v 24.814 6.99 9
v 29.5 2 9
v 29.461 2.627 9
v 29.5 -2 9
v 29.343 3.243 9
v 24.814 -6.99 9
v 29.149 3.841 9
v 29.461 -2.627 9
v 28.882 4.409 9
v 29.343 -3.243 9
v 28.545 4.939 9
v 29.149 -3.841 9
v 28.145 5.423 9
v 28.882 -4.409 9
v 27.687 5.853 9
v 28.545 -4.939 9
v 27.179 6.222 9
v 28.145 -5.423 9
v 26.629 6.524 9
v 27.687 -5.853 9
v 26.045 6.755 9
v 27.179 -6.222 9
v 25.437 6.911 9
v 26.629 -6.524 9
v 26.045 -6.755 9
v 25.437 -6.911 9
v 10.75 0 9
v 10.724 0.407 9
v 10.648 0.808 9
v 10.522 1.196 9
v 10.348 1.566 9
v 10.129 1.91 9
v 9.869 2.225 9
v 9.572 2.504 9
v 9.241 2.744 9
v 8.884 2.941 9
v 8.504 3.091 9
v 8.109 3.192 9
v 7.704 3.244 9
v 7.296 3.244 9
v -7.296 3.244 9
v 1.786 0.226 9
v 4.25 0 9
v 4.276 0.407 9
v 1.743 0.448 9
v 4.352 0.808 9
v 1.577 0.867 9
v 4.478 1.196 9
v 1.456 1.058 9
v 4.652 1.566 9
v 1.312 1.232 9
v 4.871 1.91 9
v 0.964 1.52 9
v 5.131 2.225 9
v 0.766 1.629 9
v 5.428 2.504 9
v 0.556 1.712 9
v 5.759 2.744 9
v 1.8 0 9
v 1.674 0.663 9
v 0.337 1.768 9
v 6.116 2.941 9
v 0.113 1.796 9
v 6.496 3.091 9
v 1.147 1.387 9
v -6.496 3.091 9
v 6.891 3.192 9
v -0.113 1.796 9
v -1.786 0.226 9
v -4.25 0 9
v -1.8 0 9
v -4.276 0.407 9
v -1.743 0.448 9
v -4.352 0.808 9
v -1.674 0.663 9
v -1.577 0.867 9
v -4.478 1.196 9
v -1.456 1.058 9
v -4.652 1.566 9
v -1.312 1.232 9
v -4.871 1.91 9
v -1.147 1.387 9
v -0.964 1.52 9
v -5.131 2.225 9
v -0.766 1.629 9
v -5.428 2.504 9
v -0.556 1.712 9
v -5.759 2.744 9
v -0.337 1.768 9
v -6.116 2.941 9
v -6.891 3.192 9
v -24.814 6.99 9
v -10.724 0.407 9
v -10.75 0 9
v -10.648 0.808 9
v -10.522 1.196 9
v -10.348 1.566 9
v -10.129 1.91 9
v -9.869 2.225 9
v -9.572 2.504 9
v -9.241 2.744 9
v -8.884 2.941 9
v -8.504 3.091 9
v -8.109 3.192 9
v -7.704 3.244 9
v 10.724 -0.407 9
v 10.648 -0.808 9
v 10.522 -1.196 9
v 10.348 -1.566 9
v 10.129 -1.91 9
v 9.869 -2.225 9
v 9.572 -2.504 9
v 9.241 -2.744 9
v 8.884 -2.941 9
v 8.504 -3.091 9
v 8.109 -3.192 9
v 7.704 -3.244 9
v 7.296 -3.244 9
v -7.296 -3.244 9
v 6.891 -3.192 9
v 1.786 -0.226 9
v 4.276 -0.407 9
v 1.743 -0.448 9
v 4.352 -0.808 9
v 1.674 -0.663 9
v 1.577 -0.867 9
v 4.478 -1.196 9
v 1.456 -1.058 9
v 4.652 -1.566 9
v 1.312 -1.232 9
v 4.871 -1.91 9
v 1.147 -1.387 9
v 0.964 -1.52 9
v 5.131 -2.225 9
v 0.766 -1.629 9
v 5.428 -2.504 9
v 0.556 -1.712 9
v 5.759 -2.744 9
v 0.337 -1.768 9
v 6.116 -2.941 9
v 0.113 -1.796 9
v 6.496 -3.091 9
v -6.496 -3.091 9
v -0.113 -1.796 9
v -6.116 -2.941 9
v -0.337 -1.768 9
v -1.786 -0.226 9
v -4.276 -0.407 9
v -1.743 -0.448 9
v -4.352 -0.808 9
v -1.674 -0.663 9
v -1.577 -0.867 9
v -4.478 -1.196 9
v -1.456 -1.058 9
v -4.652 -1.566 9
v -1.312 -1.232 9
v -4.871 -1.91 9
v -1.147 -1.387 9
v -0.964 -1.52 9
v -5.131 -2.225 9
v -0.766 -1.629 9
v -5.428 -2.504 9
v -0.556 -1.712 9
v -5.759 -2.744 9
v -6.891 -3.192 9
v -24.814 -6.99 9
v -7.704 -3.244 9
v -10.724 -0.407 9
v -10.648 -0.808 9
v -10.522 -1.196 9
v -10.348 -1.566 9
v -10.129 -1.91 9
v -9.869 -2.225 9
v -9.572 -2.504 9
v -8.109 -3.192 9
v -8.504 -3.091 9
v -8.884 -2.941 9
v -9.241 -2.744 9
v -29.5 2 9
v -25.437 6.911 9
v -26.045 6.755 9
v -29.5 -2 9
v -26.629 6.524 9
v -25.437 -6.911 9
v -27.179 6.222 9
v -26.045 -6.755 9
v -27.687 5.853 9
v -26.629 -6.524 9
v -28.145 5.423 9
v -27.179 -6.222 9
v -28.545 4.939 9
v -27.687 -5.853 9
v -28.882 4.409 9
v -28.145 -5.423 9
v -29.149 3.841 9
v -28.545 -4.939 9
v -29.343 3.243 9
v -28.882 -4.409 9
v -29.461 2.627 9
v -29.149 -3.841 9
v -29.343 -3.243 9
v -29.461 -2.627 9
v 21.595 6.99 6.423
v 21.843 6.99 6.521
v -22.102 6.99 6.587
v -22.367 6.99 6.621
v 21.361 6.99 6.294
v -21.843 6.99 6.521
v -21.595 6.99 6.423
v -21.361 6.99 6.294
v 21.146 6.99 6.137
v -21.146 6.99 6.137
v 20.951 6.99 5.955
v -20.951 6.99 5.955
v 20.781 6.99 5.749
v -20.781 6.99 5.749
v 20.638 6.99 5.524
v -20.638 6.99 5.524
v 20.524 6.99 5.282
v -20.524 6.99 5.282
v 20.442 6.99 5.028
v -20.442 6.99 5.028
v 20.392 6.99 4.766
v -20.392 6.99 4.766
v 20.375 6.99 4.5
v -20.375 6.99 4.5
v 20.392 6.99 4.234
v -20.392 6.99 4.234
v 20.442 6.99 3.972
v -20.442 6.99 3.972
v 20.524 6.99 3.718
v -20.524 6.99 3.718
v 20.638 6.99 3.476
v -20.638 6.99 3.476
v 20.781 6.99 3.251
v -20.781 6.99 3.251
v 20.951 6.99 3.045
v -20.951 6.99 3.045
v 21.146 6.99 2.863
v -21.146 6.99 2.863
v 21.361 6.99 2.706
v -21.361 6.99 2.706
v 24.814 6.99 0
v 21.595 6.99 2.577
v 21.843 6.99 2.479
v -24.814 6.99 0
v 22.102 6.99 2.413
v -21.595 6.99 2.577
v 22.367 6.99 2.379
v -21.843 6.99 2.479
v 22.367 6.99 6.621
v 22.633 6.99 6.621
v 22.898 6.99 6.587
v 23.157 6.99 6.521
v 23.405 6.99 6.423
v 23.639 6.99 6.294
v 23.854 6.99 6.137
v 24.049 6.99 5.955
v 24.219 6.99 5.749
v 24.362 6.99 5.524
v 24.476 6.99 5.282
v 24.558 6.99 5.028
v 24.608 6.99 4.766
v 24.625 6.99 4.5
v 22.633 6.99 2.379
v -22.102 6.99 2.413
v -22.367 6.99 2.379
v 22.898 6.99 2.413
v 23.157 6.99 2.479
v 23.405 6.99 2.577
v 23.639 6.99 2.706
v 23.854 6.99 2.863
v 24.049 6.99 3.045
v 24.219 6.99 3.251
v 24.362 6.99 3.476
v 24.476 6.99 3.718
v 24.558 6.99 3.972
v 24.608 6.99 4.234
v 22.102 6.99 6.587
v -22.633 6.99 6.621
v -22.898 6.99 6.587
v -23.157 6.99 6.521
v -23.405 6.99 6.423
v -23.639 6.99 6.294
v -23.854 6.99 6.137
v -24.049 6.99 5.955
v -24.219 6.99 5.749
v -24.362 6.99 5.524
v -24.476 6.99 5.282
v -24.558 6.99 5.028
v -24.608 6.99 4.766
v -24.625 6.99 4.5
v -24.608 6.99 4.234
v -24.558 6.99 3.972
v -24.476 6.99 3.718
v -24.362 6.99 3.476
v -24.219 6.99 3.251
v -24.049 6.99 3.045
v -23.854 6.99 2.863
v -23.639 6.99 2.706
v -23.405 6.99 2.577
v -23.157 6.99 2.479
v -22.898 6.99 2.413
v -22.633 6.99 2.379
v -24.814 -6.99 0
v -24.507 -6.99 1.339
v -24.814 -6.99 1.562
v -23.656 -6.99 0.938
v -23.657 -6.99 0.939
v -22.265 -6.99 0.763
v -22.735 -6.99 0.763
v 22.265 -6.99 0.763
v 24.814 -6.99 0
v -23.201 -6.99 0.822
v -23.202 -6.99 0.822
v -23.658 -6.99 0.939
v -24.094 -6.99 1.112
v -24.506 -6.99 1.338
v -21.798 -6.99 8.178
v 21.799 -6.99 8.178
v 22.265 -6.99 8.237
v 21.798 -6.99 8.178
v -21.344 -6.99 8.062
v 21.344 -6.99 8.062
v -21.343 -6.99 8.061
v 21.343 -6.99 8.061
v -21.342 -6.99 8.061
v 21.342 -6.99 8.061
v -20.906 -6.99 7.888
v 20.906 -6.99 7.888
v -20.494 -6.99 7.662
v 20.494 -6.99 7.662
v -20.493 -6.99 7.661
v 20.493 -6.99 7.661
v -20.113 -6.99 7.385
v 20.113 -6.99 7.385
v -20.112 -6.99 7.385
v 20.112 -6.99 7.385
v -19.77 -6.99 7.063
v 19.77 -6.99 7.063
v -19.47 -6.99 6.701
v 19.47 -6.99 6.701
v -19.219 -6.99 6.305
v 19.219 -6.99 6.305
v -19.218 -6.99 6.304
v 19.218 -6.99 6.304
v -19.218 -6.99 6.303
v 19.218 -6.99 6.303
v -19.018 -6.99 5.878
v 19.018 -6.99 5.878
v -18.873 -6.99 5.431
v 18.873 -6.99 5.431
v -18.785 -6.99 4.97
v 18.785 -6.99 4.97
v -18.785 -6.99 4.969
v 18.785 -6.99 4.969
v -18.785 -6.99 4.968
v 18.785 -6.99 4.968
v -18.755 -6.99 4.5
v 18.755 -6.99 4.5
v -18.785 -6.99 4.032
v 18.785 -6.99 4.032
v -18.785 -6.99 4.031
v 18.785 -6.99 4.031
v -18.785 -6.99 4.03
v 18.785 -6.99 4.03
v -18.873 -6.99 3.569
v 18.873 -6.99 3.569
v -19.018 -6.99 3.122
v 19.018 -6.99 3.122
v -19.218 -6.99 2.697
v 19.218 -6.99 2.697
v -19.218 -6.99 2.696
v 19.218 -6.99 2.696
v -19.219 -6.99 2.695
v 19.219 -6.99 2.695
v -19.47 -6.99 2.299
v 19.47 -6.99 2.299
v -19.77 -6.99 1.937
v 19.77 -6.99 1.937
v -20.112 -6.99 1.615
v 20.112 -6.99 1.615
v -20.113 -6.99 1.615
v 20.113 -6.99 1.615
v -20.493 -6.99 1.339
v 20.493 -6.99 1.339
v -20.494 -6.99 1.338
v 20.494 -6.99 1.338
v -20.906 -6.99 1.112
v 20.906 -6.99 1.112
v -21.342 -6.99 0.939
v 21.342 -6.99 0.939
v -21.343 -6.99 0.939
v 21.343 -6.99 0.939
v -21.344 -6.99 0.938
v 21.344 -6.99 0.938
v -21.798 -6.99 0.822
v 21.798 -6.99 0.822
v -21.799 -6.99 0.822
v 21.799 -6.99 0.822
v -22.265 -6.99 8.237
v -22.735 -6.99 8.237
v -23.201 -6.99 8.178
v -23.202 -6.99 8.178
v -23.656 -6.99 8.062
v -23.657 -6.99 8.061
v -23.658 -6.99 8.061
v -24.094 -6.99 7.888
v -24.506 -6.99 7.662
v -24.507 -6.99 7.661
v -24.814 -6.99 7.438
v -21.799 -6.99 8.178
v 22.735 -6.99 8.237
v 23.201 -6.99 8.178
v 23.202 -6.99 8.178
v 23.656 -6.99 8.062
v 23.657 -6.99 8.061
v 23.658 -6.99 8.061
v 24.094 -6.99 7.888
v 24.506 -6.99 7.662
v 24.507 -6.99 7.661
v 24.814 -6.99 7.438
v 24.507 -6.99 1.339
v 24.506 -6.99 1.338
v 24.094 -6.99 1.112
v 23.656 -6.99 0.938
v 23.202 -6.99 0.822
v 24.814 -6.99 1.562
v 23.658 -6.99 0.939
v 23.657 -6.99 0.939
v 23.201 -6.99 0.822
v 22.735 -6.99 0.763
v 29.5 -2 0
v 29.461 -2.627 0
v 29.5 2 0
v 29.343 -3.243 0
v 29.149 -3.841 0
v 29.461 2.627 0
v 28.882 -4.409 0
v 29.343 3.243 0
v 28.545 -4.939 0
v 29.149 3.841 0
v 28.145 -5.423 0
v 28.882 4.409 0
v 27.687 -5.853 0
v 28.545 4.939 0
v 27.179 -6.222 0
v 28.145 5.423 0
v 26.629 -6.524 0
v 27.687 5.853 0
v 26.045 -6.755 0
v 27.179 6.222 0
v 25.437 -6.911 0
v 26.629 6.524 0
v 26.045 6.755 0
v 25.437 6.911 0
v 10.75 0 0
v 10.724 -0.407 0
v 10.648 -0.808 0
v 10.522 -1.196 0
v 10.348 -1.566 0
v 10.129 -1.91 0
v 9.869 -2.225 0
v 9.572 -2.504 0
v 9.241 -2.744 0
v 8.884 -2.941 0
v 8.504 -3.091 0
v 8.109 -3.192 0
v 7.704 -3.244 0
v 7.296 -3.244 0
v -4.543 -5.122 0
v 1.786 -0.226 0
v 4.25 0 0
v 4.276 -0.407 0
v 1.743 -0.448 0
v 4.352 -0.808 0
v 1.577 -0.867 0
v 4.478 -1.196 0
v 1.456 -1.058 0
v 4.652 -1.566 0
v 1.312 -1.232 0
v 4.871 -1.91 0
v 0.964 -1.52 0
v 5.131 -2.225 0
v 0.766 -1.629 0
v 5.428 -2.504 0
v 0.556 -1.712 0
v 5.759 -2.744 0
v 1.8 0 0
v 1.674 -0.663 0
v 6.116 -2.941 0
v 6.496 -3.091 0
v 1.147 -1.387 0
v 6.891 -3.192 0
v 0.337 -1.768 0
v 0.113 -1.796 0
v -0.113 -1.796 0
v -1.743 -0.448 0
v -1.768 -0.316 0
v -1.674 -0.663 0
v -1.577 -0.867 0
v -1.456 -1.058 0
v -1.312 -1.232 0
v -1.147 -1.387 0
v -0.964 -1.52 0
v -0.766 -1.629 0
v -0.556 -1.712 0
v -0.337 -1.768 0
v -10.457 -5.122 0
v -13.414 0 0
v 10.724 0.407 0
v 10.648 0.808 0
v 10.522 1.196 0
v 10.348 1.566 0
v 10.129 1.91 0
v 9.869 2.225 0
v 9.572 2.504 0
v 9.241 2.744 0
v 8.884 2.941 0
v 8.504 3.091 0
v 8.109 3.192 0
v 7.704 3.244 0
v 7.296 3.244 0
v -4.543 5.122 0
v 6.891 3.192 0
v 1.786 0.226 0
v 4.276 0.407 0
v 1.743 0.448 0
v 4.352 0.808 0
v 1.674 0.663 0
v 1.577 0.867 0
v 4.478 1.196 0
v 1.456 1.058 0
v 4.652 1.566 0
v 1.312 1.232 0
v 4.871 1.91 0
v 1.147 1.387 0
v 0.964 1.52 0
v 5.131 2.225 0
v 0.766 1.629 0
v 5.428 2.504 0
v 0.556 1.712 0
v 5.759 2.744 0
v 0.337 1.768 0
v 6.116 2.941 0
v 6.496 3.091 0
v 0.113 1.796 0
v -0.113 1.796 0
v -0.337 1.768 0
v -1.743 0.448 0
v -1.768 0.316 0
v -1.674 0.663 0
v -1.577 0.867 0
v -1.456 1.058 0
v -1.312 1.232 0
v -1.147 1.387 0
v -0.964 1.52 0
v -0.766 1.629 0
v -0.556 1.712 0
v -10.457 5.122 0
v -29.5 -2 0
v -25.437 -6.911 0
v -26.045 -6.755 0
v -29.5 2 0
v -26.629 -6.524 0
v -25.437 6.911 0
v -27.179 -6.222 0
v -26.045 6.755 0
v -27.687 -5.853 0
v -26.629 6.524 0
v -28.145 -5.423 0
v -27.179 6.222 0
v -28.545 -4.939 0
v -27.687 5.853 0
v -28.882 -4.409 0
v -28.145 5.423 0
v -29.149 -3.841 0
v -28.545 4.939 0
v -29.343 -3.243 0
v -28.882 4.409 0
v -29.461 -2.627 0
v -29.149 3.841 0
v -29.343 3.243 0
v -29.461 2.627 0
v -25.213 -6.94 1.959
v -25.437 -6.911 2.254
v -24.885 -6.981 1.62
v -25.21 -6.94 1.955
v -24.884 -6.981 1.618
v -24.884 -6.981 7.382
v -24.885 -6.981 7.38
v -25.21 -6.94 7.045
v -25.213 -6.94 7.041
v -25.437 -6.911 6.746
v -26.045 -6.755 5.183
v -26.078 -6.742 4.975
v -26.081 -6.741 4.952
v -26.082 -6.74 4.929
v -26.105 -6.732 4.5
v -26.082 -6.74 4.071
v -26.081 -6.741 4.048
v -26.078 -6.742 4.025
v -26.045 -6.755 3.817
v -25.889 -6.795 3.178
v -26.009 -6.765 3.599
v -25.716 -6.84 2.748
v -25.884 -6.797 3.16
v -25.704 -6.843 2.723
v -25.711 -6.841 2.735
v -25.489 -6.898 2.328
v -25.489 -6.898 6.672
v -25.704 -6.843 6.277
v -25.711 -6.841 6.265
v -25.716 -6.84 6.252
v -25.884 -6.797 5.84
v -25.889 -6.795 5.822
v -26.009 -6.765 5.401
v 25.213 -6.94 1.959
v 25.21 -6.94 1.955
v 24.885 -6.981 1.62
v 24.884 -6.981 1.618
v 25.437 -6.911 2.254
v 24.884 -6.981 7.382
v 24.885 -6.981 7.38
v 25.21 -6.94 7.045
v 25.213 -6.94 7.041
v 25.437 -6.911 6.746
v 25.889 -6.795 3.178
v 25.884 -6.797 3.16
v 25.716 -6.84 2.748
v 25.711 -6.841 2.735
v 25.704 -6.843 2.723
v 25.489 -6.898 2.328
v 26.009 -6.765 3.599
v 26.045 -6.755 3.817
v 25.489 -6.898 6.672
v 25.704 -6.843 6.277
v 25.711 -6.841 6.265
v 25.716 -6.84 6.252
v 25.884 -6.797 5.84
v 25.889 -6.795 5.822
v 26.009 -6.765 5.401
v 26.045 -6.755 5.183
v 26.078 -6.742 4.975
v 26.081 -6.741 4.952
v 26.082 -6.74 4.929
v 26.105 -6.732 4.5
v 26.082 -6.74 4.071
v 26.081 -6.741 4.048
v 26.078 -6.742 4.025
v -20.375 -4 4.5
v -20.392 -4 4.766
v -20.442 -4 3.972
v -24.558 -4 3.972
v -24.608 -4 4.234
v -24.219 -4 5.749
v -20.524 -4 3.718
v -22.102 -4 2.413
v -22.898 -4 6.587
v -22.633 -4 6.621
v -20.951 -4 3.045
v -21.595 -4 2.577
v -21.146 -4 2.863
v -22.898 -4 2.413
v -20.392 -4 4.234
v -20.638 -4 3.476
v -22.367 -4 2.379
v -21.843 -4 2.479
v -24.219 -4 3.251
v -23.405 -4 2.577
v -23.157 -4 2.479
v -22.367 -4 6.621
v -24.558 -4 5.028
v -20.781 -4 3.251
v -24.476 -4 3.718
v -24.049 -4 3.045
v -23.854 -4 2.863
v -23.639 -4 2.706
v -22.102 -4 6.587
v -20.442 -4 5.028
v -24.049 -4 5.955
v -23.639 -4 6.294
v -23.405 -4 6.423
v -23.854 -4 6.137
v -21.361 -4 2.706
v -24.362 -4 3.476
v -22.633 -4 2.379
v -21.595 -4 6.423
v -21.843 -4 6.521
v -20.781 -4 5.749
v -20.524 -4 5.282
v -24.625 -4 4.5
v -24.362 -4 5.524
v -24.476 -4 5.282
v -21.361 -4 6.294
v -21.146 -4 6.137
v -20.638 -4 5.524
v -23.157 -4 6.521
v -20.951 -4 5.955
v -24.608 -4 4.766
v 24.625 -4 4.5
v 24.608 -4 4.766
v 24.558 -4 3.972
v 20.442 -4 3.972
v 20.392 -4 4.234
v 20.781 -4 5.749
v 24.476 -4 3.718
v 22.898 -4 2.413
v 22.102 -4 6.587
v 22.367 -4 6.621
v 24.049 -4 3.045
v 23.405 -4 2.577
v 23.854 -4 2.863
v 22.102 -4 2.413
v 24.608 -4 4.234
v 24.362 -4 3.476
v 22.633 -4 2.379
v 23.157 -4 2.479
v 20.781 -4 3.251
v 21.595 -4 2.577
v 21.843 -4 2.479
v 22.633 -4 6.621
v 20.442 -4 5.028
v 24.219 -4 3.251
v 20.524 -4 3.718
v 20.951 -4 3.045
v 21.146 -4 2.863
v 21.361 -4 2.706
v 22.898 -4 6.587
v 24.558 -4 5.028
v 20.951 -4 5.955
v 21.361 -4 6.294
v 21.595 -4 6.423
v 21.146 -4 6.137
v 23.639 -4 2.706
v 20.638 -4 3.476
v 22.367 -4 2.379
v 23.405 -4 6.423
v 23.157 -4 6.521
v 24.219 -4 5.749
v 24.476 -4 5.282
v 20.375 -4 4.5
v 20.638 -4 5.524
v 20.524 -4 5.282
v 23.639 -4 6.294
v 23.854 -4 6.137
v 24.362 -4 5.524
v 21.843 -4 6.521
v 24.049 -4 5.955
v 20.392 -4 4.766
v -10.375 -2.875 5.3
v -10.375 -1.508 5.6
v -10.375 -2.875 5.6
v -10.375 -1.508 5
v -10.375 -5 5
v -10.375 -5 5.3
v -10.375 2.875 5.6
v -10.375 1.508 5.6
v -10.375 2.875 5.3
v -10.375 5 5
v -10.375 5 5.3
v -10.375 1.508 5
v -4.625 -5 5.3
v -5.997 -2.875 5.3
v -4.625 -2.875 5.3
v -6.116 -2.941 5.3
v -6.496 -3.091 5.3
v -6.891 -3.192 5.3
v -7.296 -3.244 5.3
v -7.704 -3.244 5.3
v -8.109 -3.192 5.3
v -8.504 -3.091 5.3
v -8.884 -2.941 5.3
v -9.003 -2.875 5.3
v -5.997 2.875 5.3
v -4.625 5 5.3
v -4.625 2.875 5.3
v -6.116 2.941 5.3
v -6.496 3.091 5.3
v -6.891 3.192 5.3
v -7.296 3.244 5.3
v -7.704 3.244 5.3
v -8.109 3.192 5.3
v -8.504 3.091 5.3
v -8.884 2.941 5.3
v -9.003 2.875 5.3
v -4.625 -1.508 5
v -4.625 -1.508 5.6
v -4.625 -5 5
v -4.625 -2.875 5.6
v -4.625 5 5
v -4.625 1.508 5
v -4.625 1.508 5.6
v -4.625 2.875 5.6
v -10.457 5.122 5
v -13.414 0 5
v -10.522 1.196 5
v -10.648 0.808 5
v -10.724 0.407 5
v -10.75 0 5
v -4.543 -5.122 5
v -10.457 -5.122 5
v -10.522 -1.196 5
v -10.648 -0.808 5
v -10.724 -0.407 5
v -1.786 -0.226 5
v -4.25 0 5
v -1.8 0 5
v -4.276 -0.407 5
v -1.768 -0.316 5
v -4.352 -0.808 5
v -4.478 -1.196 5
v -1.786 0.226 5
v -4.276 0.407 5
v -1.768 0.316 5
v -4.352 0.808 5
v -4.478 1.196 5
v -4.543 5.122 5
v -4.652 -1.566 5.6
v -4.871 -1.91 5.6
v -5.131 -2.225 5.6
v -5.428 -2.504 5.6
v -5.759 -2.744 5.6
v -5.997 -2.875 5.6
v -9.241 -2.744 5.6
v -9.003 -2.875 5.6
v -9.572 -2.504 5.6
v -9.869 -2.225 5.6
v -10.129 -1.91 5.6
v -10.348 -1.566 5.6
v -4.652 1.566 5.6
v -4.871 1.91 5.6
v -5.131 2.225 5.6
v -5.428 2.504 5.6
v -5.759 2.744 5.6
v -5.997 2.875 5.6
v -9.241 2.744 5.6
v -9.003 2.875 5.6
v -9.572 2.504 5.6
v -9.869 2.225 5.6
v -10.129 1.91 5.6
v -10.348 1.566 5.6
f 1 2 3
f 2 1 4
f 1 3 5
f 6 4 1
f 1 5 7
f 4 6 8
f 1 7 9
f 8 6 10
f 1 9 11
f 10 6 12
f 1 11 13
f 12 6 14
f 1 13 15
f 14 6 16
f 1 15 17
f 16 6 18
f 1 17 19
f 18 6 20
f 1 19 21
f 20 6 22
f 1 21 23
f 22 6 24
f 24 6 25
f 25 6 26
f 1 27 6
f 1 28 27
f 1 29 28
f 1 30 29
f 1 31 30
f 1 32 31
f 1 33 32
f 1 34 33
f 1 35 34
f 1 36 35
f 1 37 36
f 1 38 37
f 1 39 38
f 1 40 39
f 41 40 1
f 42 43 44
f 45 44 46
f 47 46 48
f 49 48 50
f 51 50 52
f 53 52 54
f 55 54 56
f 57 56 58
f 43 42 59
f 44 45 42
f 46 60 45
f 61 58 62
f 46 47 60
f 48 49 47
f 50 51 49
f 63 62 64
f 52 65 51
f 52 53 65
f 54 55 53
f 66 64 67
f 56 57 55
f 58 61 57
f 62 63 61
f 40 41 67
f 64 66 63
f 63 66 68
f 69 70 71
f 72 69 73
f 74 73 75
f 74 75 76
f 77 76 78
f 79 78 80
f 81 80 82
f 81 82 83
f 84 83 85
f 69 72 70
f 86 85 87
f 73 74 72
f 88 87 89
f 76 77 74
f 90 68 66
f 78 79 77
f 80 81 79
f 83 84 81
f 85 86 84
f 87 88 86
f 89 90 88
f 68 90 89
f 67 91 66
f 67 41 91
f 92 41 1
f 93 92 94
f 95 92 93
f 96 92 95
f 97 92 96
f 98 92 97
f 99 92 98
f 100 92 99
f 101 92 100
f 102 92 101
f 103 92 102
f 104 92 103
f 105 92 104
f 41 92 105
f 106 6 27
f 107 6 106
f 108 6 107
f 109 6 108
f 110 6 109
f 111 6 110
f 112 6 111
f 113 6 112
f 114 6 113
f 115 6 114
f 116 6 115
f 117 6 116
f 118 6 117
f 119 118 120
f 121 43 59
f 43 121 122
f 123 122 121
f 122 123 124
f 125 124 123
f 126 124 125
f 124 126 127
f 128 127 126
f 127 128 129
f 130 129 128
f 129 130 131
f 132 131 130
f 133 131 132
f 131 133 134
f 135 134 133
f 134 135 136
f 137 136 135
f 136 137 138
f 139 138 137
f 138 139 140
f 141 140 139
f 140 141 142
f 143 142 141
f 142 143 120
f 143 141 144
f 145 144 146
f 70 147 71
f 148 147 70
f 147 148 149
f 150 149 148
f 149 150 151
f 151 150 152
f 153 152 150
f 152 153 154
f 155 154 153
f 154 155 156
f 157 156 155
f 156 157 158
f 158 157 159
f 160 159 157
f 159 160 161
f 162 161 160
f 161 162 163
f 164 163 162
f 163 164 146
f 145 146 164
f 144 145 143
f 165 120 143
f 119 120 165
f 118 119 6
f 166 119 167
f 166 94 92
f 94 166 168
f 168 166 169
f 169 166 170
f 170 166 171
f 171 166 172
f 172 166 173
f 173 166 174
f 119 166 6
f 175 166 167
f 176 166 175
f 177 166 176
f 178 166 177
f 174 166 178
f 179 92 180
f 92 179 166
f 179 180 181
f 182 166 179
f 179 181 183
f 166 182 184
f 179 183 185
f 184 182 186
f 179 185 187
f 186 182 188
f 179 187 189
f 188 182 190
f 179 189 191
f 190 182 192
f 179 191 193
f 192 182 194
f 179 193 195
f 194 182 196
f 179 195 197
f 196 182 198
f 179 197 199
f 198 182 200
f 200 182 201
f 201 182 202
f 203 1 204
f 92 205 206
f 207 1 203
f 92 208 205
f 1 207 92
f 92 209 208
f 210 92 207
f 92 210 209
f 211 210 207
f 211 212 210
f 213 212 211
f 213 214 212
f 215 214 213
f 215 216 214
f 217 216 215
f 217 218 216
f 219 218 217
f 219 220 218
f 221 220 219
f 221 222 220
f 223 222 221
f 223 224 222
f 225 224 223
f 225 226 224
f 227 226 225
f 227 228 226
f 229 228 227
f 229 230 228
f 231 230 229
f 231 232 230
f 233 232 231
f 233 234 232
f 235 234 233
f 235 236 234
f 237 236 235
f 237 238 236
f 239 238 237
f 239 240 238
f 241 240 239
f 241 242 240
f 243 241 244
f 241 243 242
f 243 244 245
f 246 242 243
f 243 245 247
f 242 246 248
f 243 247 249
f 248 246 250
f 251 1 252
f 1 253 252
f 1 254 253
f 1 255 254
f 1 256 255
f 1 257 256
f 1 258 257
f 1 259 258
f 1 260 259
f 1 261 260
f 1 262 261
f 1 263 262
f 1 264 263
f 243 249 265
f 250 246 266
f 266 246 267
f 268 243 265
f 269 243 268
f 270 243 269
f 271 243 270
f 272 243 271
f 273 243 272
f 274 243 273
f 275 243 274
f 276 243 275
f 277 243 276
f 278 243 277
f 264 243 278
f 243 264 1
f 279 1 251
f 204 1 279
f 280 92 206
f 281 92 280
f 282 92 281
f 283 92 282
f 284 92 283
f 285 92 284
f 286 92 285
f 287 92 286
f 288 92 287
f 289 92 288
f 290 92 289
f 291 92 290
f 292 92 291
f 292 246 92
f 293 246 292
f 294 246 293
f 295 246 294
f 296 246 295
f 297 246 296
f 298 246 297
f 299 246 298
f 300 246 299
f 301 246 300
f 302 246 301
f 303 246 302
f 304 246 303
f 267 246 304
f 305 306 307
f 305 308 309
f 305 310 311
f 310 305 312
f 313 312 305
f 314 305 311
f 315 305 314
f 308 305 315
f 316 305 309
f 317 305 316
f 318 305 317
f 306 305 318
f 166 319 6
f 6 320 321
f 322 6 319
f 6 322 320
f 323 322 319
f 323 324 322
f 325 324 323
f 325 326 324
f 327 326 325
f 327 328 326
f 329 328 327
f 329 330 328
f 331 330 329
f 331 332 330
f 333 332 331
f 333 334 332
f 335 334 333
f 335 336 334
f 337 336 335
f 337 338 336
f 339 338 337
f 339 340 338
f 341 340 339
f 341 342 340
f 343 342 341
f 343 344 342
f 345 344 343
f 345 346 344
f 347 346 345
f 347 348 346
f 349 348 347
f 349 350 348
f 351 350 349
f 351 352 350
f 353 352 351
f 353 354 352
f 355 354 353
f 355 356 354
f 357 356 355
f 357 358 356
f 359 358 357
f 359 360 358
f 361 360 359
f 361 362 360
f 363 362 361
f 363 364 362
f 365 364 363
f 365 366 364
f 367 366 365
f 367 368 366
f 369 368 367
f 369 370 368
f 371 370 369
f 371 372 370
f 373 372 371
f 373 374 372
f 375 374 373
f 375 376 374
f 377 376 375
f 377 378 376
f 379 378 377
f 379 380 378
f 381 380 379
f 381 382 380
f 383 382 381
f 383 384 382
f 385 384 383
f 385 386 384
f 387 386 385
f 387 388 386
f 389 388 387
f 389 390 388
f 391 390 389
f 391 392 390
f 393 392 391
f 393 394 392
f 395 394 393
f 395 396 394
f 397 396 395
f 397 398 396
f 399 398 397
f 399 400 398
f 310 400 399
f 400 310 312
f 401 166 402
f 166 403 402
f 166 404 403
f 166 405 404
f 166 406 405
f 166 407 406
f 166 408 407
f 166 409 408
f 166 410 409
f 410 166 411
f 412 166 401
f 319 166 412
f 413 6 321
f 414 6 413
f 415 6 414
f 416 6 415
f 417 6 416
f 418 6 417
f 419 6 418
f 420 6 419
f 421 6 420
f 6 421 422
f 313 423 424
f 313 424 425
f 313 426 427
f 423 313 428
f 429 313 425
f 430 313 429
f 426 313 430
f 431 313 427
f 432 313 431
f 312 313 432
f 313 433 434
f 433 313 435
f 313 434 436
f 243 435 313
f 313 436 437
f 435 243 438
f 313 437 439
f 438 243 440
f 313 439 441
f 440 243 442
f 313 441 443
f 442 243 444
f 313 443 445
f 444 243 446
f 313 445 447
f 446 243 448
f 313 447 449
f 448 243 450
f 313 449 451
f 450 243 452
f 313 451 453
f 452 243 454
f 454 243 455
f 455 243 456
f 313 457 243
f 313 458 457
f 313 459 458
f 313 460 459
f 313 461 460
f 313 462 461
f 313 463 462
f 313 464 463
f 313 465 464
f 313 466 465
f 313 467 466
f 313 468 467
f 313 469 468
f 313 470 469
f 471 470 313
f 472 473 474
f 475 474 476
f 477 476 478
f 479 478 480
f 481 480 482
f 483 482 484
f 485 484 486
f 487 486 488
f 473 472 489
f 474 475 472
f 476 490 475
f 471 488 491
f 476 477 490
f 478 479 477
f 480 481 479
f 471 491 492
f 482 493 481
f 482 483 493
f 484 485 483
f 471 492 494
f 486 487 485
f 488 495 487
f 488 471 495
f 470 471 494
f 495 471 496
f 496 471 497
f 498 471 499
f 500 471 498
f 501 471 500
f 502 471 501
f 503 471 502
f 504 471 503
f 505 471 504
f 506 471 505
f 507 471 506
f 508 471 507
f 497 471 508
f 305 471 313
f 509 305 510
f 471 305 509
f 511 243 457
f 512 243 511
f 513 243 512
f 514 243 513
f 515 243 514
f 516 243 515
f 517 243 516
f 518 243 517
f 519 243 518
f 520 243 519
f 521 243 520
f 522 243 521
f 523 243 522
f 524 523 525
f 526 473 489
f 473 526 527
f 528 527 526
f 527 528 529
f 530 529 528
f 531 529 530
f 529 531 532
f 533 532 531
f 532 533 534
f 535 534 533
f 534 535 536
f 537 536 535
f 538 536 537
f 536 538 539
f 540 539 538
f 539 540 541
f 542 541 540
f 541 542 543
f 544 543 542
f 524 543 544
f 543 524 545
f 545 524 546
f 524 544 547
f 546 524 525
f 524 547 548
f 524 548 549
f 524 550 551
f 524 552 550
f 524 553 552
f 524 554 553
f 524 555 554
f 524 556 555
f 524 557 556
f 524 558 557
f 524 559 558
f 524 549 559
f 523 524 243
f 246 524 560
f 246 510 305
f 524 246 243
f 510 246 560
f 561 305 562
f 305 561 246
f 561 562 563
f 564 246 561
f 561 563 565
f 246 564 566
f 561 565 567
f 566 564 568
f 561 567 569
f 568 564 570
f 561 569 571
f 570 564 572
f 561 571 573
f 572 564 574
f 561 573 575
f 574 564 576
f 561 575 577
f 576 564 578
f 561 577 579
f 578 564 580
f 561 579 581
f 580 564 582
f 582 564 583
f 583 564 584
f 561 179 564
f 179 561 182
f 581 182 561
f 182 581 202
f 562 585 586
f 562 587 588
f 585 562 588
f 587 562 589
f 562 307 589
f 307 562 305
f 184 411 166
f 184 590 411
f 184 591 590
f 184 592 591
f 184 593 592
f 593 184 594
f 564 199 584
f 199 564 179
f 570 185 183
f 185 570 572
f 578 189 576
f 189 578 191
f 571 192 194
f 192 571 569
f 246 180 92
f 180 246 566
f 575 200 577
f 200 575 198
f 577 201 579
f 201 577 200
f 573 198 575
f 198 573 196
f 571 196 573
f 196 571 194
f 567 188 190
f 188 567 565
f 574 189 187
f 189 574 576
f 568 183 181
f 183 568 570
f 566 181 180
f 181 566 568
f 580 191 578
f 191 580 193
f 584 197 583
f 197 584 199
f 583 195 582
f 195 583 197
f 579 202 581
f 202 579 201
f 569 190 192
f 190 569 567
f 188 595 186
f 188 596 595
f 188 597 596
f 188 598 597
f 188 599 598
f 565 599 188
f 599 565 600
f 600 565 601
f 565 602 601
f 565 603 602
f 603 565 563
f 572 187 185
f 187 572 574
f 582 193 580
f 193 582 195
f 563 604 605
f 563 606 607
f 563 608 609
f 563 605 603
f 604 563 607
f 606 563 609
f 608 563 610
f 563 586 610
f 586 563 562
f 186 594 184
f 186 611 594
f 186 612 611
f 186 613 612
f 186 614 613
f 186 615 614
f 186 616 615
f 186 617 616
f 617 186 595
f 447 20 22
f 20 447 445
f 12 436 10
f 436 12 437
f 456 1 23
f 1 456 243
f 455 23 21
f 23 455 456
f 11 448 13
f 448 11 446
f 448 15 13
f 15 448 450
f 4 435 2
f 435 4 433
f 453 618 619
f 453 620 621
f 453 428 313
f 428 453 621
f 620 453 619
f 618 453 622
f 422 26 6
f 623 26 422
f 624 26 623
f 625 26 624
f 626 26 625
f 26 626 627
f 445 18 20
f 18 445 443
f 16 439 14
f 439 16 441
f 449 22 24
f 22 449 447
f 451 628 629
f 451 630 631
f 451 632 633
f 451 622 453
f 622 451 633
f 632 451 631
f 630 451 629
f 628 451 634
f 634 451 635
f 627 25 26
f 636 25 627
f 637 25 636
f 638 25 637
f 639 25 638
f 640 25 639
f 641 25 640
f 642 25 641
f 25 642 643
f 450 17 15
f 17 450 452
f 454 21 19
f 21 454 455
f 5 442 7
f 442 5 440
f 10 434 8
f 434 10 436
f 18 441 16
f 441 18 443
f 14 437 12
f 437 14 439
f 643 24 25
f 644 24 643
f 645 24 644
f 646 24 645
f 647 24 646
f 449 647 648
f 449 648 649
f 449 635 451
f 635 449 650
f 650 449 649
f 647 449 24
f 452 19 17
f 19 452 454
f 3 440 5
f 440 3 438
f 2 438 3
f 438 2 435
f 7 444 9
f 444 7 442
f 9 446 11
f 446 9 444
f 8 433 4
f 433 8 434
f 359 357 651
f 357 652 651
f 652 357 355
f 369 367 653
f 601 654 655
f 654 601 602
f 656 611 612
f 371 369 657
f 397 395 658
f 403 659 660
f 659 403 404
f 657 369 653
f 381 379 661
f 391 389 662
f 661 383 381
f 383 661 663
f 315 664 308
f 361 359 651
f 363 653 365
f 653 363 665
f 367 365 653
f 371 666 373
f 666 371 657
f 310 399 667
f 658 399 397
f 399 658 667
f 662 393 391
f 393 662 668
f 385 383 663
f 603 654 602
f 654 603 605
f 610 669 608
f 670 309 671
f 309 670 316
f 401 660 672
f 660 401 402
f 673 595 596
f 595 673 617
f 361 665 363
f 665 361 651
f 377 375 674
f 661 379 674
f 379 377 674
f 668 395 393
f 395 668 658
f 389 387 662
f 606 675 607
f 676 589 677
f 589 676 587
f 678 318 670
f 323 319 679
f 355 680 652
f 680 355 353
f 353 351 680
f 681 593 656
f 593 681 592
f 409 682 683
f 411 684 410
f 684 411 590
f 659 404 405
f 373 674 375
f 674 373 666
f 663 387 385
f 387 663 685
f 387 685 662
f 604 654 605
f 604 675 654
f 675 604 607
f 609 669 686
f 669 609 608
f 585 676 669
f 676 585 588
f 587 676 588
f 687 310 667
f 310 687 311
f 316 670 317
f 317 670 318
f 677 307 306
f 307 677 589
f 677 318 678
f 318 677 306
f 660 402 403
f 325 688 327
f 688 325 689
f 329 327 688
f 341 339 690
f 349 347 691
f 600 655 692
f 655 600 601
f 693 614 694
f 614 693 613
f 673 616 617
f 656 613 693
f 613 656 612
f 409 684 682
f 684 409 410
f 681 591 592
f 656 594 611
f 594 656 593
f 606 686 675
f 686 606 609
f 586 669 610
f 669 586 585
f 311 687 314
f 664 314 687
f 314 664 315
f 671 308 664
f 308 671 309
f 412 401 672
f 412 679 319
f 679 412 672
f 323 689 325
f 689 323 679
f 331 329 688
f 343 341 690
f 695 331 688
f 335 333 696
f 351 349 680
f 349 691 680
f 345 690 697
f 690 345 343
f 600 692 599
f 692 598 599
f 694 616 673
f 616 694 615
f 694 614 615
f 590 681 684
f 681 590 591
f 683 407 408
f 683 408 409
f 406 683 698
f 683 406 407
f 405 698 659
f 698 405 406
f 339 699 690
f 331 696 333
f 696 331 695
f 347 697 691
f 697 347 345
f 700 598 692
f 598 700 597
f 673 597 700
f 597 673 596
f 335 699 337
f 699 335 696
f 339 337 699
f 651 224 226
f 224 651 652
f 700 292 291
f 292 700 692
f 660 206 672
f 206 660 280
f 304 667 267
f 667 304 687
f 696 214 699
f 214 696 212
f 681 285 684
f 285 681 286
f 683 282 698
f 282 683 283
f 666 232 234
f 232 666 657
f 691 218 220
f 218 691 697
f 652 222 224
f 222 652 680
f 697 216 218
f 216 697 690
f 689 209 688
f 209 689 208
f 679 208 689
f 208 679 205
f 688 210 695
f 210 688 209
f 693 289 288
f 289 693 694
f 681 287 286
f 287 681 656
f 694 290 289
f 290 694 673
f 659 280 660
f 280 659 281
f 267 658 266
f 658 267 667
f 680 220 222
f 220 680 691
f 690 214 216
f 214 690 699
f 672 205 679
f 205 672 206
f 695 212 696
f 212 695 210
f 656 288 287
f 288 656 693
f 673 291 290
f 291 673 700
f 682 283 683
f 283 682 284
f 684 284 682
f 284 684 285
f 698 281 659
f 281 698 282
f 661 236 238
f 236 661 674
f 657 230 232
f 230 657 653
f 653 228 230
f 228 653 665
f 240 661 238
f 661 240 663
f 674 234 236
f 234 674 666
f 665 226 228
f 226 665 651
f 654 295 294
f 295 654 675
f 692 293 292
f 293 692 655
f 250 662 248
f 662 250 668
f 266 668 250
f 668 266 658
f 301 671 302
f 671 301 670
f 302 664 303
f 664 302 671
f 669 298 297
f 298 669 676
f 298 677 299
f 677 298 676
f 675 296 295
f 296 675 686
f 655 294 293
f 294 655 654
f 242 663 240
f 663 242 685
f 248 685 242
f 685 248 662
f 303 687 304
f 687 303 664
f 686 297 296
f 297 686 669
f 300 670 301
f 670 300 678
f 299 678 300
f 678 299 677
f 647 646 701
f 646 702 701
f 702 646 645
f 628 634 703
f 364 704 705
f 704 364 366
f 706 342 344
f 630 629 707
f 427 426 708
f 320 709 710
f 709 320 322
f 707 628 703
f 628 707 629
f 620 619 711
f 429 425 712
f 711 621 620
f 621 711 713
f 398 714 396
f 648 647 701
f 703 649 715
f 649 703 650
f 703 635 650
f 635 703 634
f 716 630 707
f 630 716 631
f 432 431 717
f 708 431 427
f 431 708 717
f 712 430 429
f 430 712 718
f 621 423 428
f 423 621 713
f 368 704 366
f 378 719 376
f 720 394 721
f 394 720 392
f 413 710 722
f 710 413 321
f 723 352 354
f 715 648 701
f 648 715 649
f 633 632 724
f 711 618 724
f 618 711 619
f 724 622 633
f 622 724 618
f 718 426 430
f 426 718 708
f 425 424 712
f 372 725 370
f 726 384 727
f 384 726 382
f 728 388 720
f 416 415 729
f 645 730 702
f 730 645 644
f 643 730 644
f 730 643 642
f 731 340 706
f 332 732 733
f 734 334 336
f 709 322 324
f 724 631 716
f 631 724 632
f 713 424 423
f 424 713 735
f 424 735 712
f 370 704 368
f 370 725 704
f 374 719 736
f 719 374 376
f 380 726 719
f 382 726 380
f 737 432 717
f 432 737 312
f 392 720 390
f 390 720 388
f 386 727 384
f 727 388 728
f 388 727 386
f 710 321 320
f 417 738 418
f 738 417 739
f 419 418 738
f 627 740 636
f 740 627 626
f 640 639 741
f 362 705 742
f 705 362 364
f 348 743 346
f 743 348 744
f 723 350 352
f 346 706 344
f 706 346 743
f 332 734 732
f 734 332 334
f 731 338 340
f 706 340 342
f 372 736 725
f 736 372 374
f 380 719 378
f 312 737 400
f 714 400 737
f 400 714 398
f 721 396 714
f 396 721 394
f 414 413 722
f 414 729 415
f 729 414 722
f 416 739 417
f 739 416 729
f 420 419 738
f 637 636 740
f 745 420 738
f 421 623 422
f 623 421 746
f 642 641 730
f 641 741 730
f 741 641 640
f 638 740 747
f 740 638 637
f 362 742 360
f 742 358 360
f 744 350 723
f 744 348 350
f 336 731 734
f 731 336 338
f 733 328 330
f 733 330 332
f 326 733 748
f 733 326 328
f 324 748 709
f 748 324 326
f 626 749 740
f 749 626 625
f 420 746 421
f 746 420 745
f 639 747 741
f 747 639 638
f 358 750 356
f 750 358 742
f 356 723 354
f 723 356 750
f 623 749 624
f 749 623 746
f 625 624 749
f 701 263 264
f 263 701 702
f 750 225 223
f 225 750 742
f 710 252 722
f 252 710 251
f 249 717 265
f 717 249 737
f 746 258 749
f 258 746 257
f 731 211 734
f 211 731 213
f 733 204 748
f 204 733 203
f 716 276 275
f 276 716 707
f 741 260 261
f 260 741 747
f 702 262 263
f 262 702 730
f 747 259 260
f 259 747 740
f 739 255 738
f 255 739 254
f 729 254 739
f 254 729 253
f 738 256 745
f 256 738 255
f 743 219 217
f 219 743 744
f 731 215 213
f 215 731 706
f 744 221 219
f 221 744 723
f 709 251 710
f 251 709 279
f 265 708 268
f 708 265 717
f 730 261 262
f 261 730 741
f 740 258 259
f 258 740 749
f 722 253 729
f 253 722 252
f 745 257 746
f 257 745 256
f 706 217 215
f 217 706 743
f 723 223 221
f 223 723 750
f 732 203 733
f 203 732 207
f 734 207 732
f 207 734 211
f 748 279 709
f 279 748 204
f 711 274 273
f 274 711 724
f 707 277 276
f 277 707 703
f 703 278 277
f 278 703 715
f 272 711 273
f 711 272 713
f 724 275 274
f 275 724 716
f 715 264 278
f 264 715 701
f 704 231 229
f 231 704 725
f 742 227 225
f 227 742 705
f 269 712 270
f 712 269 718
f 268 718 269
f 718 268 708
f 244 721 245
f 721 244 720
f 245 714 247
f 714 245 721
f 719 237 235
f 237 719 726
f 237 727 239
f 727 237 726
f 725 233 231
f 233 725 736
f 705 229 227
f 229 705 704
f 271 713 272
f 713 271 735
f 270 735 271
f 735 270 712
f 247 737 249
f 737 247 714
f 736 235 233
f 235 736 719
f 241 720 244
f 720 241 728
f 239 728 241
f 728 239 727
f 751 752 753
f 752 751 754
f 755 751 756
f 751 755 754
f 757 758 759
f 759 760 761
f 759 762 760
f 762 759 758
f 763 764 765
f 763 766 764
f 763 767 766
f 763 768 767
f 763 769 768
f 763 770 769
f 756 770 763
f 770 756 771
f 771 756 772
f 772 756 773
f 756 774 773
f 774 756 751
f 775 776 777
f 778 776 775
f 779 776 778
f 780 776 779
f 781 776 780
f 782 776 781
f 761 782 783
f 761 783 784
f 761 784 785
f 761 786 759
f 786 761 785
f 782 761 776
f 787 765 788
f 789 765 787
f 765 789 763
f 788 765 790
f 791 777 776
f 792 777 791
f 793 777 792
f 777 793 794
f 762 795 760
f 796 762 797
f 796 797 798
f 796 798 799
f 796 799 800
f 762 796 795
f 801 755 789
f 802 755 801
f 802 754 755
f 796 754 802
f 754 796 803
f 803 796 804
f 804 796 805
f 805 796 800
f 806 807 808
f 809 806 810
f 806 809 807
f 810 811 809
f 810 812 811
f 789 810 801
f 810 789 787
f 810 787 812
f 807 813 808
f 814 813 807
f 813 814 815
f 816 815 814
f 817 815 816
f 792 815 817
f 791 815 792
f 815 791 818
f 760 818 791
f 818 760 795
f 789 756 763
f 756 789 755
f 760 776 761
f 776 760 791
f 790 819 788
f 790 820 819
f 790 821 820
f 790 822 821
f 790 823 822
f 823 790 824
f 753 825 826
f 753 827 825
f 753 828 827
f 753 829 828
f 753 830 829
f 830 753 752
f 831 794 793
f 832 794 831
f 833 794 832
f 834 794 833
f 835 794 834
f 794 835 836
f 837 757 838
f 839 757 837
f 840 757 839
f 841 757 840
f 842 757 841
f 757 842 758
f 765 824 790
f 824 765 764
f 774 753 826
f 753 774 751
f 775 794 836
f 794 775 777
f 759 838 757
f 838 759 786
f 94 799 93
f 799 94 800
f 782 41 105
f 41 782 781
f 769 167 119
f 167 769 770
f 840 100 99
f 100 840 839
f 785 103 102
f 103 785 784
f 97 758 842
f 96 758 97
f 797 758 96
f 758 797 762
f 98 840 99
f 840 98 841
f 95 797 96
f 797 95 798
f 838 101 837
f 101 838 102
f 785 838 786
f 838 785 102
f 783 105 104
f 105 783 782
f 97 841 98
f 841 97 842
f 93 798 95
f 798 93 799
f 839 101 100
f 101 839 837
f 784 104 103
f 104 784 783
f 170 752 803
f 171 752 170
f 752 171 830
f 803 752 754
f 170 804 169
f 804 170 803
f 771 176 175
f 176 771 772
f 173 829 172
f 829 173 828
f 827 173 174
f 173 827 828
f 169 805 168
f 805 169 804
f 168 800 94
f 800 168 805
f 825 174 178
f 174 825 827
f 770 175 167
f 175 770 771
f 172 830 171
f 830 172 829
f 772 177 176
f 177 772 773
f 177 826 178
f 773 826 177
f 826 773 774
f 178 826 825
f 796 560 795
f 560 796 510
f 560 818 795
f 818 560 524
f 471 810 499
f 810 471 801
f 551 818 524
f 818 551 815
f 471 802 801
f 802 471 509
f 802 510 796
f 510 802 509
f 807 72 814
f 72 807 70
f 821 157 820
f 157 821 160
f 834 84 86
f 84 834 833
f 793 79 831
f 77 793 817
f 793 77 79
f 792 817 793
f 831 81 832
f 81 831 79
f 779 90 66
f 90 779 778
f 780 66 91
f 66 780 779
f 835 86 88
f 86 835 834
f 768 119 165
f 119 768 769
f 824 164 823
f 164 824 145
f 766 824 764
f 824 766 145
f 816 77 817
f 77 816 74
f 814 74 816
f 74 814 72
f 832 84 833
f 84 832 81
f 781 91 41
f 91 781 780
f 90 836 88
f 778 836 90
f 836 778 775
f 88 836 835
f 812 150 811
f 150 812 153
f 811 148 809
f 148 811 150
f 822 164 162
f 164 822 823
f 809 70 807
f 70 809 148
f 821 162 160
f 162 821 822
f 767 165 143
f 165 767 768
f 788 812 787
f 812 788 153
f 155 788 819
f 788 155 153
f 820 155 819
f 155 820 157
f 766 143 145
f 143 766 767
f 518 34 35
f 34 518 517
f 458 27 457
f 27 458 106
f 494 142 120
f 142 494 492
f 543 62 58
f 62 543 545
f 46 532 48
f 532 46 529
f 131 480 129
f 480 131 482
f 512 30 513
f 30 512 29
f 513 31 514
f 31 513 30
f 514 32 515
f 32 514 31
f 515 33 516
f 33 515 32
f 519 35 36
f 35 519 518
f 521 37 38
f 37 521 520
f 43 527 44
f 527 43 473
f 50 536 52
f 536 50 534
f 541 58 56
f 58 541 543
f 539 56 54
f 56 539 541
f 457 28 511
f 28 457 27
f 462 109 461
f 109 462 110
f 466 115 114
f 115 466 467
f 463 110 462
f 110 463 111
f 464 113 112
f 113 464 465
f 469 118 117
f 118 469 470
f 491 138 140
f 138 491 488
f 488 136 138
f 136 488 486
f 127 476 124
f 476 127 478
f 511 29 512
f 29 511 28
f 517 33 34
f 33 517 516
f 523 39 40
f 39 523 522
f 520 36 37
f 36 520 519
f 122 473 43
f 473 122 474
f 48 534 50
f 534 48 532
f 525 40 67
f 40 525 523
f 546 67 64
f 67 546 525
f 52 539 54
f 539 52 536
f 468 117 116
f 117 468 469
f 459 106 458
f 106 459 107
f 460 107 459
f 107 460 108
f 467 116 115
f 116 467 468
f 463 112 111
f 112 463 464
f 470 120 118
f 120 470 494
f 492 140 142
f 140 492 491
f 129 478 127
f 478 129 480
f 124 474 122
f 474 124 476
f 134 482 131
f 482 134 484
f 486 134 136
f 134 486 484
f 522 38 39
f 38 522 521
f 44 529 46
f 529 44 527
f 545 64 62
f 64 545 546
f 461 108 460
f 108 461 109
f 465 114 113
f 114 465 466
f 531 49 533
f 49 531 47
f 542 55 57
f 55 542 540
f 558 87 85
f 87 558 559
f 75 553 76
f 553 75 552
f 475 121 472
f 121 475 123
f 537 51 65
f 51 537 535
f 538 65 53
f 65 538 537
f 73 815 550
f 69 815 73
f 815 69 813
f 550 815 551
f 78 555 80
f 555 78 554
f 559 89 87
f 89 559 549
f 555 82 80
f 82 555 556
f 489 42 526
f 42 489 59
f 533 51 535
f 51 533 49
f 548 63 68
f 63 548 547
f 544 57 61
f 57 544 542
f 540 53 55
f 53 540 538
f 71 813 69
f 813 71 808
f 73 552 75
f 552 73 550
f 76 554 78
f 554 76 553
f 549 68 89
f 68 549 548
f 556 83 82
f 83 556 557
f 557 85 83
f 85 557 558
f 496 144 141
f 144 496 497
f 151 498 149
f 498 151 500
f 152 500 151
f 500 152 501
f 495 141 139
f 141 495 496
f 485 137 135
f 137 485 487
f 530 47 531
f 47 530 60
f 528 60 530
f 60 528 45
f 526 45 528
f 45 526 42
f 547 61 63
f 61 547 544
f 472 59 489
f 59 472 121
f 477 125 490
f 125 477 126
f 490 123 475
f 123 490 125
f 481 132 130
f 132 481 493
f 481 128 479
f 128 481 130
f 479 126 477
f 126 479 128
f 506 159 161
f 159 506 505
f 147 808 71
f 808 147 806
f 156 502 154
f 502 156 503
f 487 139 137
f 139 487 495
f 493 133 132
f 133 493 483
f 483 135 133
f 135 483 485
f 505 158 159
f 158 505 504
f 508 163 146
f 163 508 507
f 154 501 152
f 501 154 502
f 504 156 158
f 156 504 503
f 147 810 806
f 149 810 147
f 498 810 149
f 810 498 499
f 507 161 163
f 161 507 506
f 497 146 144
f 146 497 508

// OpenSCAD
$fn = 50;


difference() {
	union() {
		hull() {
			translate(v = [-9.5000000000, 2.0000000000, 0]) {
				cylinder(h = 9, r = 5);
			}
			translate(v = [9.5000000000, 2.0000000000, 0]) {
				cylinder(h = 9, r = 5);
			}
			translate(v = [-9.5000000000, -2.0000000000, 0]) {
				cylinder(h = 9, r = 5);
			}
			translate(v = [9.5000000000, -2.0000000000, 0]) {
				cylinder(h = 9, r = 5);
			}
		}
		translate(v = [-15.0000000000, 0.0000000000, 0]) {
			hull() {
				translate(v = [-9.5000000000, 2.0000000000, 0]) {
					cylinder(h = 9, r = 5);
				}
				translate(v = [9.5000000000, 2.0000000000, 0]) {
					cylinder(h = 9, r = 5);
				}
				translate(v = [-9.5000000000, -2.0000000000, 0]) {
					cylinder(h = 9, r = 5);
				}
				translate(v = [9.5000000000, -2.0000000000, 0]) {
					cylinder(h = 9, r = 5);
				}
			}
		}
		translate(v = [15.0000000000, 0.0000000000, 0]) {
			hull() {
				translate(v = [-9.5000000000, 2.0000000000, 0]) {
					cylinder(h = 9, r = 5);
				}
				translate(v = [9.5000000000, 2.0000000000, 0]) {
					cylinder(h = 9, r = 5);
				}
				translate(v = [-9.5000000000, -2.0000000000, 0]) {
					cylinder(h = 9, r = 5);
				}
				translate(v = [9.5000000000, -2.0000000000, 0]) {
					cylinder(h = 9, r = 5);
				}
			}
		}
	}
	union() {
		translate(v = [-22.5000000000, -7.0000000000, 4.5000000000]) {
			rotate(a = [90, 0, 0]) {
				difference() {
					union() {
						#translate(v = [0, 0, -14.0000000000]) {
							cylinder(h = 14, r = 2.0000000000);
						}
						#translate(v = [0, 0, -3]) {
							cylinder(h = 3, r1 = 2.1250000000, r2 = 3.7500000000);
						}
						#translate(v = [0, 0, -14.0000000000]) {
							cylinder(h = 14, r = 2.1250000000);
						}
						#translate(v = [0, 0, -14.0000000000]) {
							cylinder(h = 14, r = 2.0000000000);
						}
					}
					union();
				}
			}
		}
		translate(v = [22.5000000000, -7.0000000000, 4.5000000000]) {
			rotate(a = [90, 0, 0]) {
				difference() {
					union() {
						#translate(v = [0, 0, -14.0000000000]) {
							cylinder(h = 14, r = 2.0000000000);
						}
						#translate(v = [0, 0, -3]) {
							cylinder(h = 3, r1 = 2.1250000000, r2 = 3.7500000000);
						}
						#translate(v = [0, 0, -14.0000000000]) {
							cylinder(h = 14, r = 2.1250000000);
						}
						#translate(v = [0, 0, -14.0000000000]) {
							cylinder(h = 14, r = 2.0000000000);
						}
					}
					union();
				}
			}
		}
		translate(v = [-7.5000000000, 0.0000000000, 0]) {
			rotate(a = [0, 0, 0]) {
				difference() {
					union() {
						#translate(v = [-2.8750000000, -5.0000000000, -0.3000000000]) {
							cube(size = [5.7500000000, 10, 0.3000000000]);
						}
						#translate(v = [-2.8750000000, -2.8750000000, -0.6000000000]) {
							cube(size = [5.7500000000, 5.7500000000, 0.3000000000]);
						}
						#translate(v = [-2.8750000000, -5.0000000000, 5]) {
							cube(size = [5.7500000000, 10, 0.3000000000]);
						}
						#translate(v = [-2.8750000000, -2.8750000000, 5.3000000000]) {
							cube(size = [5.7500000000, 5.7500000000, 0.3000000000]);
						}
						#translate(v = [0, 0, -100.0000000000]) {
							cylinder(h = 200, r = 3.2500000000);
						}
						#linear_extrude(height = 5) {
							polygon(points = [[5.9142500000, 0.0000000000], [2.9571250000, 5.1218907443], [-2.9571250000, 5.1218907443], [-5.9142500000, 0.0000000000], [-2.9571250000, -5.1218907443], [2.9571250000, -5.1218907443]]);
						}
						#translate(v = [-2.8750000000, -5.0000000000, -0.3000000000]) {
							cube(size = [5.7500000000, 10, 0.3000000000]);
						}
						#translate(v = [-2.8750000000, -2.8750000000, -0.6000000000]) {
							cube(size = [5.7500000000, 5.7500000000, 0.3000000000]);
						}
						#translate(v = [-2.8750000000, -5.0000000000, 5]) {
							cube(size = [5.7500000000, 10, 0.3000000000]);
						}
						#translate(v = [-2.8750000000, -2.8750000000, 5.3000000000]) {
							cube(size = [5.7500000000, 5.7500000000, 0.3000000000]);
						}
						#translate(v = [0, 0, -100.0000000000]) {
							cylinder(h = 200, r = 3.2500000000);
						}
						#translate(v = [-2.8750000000, -5.0000000000, -0.3000000000]) {
							cube(size = [5.7500000000, 10, 0.3000000000]);
						}
						#translate(v = [-2.8750000000, -2.8750000000, -0.6000000000]) {
							cube(size = [5.7500000000, 5.7500000000, 0.3000000000]);
						}
						#translate(v = [-2.8750000000, -5.0000000000, 5]) {
							cube(size = [5.7500000000, 10, 0.3000000000]);
						}
						#translate(v = [-2.8750000000, -2.8750000000, 5.3000000000]) {
							cube(size = [5.7500000000, 5.7500000000, 0.3000000000]);
						}
						#translate(v = [0, 0, -100.0000000000]) {
							cylinder(h = 200, r = 3.2500000000);
						}
					}
					union();
				}
			}
		}
		translate(v = [-7.5000000000, 0.0000000000, 0]) {
			translate(v = [0, 0, -100]) {
				cylinder(h = 200, r = 3.2500000000);
			}
		}
		translate(v = [7.5000000000, 0.0000000000, 0]) {
			translate(v = [0, 0, -100]) {
				cylinder(h = 200, r = 3.2500000000);
			}
		}
		translate(v = [-7.5000000000, 0.0000000000, 0]) {
			translate(v = [0, 0, -100]) {
				cylinder(h = 200, r = 1.8000000000);
			}
		}
		translate(v = [0, 0, -100]) {
			cylinder(h = 200, r = 1.8000000000);
		}
		translate(v = [7.5000000000, 0.0000000000, 0]) {
			translate(v = [0, 0, -100]) {
				cylinder(h = 200, r = 1.8000000000);
			}
		}
	}
}
